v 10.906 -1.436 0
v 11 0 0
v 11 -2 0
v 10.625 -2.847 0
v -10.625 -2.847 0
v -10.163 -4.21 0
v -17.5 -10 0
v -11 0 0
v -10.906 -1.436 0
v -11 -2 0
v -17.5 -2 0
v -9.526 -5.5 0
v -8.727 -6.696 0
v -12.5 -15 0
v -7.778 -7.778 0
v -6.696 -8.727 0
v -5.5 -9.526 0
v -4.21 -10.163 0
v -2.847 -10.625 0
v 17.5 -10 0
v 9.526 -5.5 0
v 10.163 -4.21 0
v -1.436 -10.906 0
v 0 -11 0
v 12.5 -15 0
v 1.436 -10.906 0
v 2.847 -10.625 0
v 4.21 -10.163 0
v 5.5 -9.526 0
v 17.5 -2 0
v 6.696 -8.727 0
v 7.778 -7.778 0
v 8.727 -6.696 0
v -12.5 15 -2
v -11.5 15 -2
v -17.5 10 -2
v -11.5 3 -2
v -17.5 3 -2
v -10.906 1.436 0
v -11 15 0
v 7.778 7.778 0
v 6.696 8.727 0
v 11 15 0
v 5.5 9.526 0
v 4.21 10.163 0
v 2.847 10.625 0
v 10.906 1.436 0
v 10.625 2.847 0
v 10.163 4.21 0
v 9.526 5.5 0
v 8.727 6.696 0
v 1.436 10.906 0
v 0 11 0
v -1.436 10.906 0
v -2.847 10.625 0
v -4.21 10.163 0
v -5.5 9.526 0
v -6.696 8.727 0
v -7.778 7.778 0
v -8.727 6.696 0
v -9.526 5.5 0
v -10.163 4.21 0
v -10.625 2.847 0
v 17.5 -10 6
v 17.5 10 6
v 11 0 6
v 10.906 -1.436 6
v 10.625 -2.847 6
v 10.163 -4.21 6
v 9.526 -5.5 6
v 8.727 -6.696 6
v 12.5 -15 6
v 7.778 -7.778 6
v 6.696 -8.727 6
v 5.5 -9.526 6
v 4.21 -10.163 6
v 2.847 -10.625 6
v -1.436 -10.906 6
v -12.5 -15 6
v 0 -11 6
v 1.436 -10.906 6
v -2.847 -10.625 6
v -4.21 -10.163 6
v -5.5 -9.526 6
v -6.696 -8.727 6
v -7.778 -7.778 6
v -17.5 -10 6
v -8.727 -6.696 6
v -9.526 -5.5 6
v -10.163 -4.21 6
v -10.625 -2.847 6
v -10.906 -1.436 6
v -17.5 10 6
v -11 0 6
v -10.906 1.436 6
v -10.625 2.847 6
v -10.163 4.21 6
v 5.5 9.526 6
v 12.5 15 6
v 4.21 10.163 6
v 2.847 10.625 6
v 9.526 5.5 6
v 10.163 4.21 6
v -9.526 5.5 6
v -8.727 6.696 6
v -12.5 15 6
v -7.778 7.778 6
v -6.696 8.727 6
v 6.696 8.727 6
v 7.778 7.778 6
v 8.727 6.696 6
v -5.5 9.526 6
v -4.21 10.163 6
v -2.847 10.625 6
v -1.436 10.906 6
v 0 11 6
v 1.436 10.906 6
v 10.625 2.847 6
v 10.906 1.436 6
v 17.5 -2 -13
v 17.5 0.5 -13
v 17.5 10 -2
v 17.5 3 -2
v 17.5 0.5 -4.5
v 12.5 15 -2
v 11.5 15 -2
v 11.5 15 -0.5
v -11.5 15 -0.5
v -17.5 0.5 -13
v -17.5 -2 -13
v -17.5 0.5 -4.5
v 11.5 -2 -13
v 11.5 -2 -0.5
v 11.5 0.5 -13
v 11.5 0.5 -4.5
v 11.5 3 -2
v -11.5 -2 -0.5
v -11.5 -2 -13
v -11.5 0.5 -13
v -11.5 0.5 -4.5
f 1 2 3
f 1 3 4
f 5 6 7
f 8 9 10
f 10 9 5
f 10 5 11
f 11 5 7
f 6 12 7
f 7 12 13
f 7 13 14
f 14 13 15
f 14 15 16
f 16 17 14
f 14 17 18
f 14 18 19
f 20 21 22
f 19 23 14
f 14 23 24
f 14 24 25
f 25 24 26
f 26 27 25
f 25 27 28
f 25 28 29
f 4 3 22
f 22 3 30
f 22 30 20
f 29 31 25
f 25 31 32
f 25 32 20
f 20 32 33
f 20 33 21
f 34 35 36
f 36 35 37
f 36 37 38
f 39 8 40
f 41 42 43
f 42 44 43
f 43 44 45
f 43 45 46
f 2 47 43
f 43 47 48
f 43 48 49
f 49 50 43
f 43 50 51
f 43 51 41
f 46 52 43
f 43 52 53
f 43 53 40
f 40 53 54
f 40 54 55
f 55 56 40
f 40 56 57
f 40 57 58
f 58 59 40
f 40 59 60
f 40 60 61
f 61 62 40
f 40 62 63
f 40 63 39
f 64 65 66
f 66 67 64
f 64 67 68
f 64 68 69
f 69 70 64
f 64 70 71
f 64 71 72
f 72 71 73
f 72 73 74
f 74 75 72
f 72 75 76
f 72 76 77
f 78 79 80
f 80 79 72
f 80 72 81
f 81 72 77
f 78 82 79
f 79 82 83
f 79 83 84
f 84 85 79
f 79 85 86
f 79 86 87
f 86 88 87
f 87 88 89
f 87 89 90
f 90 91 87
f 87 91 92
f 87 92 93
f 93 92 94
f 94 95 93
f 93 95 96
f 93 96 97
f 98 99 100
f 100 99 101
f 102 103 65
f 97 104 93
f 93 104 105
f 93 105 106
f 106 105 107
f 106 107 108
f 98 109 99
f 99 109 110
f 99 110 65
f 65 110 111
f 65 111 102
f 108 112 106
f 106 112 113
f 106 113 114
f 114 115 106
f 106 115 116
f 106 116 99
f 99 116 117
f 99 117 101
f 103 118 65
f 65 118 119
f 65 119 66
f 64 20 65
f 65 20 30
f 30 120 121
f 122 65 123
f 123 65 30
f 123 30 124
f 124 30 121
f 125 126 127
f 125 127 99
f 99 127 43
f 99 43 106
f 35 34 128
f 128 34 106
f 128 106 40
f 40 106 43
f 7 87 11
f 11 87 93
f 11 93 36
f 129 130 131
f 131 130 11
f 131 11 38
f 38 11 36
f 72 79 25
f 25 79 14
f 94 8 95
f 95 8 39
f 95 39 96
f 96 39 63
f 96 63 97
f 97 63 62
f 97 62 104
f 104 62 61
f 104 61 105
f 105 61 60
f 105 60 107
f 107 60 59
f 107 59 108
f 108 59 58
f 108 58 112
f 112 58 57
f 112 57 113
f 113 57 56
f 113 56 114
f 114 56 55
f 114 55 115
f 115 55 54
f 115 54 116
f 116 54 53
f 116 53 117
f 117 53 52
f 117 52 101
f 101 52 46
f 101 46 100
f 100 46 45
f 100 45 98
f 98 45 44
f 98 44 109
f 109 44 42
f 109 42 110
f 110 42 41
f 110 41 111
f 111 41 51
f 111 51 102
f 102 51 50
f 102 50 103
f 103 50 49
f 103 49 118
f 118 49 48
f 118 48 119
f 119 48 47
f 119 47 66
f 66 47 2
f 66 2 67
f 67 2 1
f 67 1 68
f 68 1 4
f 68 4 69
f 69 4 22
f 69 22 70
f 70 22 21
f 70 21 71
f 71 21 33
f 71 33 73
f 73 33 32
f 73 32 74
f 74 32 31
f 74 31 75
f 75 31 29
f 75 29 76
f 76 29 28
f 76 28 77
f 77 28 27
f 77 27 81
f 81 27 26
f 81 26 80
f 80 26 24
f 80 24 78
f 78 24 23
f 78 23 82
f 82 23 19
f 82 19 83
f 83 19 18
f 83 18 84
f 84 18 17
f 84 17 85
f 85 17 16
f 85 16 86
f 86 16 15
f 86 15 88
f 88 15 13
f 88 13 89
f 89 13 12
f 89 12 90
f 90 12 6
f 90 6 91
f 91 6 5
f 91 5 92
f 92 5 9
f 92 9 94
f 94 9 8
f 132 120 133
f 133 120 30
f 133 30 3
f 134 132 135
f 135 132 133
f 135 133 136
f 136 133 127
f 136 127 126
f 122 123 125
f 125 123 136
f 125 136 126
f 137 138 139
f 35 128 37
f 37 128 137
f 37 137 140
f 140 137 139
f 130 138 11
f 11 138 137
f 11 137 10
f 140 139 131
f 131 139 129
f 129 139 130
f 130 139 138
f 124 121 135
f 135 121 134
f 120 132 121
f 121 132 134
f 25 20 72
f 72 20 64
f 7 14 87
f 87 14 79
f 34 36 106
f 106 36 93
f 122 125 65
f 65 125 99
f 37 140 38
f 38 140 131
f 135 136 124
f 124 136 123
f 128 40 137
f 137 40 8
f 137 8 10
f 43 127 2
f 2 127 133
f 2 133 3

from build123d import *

# Parameters (mm, degrees)
SKETCH1_W           = 35
SKETCH1_H           = 30
SKETCH1_R           = 11
BOSS_EXTRUDE1_DEPTH = 6
SKETCH2_W           = 6
SKETCH2_H           = 17
BOSS_EXTRUDE2_DEPTH = 2
SKETCH3_W           = 6
SKETCH3_H           = 2.5
BOSS_EXTRUDE3_DEPTH = 11
CHAMFER1_SIZE       = 5
CHAMFER2_SIZE       = 2.5
CHAMFER3_SIZE       = 0.5


with BuildPart() as part:
    # Sketch1 → Boss-Extrude1 (new body)
    with BuildSketch(Plane.XY):
        Rectangle(SKETCH1_W, SKETCH1_H)
        Circle(SKETCH1_R, mode=Mode.SUBTRACT)
    extrude(amount=BOSS_EXTRUDE1_DEPTH)

    # Sketch2 → Boss-Extrude2 (add)
    with BuildSketch(Plane(origin=(0, 0, 0), x_dir=(-1, 0, 0), z_dir=(0, 0, -1))):
        with Locations((14.5, 6.5)):
            Rectangle(SKETCH2_W, SKETCH2_H)
        with Locations((-14.5, 6.5)):
            Rectangle(SKETCH2_W, SKETCH2_H)
    extrude(amount=BOSS_EXTRUDE2_DEPTH)

    # Sketch3 → Boss-Extrude3 (add)
    with BuildSketch(Plane(origin=(0, 0, -2), x_dir=(-1, 0, 0), z_dir=(0, 0, -1))):
        with Locations((14.5, -0.75)):
            Rectangle(SKETCH3_W, SKETCH3_H)
        with Locations((-14.5, -0.75)):
            Rectangle(SKETCH3_W, SKETCH3_H)
    extrude(amount=BOSS_EXTRUDE3_DEPTH)

    # Chamfer1
    chamfer1_edges = [part.edges().sort_by_distance(p)[0] for p in [
        (17.5, -15, 3),
        (-17.5, -15, 3),
        (-17.5, 15, 2),
        (17.5, 15, 2),
    ]]
    chamfer(chamfer1_edges, length=CHAMFER1_SIZE)

    # Chamfer2
    chamfer2_edges = [part.edges().sort_by_distance(p)[0] for p in [
        (-14.5, 0.5, -2),
        (14.5, 0.5, -2),
    ]]
    chamfer(chamfer2_edges, length=CHAMFER2_SIZE)

    # Chamfer3
    chamfer3_edges = [part.edges().sort_by_distance(p)[0] for p in [
        (-11.5, 6.5, 0),
        (11.5, 6.5, 0),
    ]]
    chamfer(chamfer3_edges, length=CHAMFER3_SIZE - 0.0001)  # a hair under: the kernel refuses the full size


solid = part.part
